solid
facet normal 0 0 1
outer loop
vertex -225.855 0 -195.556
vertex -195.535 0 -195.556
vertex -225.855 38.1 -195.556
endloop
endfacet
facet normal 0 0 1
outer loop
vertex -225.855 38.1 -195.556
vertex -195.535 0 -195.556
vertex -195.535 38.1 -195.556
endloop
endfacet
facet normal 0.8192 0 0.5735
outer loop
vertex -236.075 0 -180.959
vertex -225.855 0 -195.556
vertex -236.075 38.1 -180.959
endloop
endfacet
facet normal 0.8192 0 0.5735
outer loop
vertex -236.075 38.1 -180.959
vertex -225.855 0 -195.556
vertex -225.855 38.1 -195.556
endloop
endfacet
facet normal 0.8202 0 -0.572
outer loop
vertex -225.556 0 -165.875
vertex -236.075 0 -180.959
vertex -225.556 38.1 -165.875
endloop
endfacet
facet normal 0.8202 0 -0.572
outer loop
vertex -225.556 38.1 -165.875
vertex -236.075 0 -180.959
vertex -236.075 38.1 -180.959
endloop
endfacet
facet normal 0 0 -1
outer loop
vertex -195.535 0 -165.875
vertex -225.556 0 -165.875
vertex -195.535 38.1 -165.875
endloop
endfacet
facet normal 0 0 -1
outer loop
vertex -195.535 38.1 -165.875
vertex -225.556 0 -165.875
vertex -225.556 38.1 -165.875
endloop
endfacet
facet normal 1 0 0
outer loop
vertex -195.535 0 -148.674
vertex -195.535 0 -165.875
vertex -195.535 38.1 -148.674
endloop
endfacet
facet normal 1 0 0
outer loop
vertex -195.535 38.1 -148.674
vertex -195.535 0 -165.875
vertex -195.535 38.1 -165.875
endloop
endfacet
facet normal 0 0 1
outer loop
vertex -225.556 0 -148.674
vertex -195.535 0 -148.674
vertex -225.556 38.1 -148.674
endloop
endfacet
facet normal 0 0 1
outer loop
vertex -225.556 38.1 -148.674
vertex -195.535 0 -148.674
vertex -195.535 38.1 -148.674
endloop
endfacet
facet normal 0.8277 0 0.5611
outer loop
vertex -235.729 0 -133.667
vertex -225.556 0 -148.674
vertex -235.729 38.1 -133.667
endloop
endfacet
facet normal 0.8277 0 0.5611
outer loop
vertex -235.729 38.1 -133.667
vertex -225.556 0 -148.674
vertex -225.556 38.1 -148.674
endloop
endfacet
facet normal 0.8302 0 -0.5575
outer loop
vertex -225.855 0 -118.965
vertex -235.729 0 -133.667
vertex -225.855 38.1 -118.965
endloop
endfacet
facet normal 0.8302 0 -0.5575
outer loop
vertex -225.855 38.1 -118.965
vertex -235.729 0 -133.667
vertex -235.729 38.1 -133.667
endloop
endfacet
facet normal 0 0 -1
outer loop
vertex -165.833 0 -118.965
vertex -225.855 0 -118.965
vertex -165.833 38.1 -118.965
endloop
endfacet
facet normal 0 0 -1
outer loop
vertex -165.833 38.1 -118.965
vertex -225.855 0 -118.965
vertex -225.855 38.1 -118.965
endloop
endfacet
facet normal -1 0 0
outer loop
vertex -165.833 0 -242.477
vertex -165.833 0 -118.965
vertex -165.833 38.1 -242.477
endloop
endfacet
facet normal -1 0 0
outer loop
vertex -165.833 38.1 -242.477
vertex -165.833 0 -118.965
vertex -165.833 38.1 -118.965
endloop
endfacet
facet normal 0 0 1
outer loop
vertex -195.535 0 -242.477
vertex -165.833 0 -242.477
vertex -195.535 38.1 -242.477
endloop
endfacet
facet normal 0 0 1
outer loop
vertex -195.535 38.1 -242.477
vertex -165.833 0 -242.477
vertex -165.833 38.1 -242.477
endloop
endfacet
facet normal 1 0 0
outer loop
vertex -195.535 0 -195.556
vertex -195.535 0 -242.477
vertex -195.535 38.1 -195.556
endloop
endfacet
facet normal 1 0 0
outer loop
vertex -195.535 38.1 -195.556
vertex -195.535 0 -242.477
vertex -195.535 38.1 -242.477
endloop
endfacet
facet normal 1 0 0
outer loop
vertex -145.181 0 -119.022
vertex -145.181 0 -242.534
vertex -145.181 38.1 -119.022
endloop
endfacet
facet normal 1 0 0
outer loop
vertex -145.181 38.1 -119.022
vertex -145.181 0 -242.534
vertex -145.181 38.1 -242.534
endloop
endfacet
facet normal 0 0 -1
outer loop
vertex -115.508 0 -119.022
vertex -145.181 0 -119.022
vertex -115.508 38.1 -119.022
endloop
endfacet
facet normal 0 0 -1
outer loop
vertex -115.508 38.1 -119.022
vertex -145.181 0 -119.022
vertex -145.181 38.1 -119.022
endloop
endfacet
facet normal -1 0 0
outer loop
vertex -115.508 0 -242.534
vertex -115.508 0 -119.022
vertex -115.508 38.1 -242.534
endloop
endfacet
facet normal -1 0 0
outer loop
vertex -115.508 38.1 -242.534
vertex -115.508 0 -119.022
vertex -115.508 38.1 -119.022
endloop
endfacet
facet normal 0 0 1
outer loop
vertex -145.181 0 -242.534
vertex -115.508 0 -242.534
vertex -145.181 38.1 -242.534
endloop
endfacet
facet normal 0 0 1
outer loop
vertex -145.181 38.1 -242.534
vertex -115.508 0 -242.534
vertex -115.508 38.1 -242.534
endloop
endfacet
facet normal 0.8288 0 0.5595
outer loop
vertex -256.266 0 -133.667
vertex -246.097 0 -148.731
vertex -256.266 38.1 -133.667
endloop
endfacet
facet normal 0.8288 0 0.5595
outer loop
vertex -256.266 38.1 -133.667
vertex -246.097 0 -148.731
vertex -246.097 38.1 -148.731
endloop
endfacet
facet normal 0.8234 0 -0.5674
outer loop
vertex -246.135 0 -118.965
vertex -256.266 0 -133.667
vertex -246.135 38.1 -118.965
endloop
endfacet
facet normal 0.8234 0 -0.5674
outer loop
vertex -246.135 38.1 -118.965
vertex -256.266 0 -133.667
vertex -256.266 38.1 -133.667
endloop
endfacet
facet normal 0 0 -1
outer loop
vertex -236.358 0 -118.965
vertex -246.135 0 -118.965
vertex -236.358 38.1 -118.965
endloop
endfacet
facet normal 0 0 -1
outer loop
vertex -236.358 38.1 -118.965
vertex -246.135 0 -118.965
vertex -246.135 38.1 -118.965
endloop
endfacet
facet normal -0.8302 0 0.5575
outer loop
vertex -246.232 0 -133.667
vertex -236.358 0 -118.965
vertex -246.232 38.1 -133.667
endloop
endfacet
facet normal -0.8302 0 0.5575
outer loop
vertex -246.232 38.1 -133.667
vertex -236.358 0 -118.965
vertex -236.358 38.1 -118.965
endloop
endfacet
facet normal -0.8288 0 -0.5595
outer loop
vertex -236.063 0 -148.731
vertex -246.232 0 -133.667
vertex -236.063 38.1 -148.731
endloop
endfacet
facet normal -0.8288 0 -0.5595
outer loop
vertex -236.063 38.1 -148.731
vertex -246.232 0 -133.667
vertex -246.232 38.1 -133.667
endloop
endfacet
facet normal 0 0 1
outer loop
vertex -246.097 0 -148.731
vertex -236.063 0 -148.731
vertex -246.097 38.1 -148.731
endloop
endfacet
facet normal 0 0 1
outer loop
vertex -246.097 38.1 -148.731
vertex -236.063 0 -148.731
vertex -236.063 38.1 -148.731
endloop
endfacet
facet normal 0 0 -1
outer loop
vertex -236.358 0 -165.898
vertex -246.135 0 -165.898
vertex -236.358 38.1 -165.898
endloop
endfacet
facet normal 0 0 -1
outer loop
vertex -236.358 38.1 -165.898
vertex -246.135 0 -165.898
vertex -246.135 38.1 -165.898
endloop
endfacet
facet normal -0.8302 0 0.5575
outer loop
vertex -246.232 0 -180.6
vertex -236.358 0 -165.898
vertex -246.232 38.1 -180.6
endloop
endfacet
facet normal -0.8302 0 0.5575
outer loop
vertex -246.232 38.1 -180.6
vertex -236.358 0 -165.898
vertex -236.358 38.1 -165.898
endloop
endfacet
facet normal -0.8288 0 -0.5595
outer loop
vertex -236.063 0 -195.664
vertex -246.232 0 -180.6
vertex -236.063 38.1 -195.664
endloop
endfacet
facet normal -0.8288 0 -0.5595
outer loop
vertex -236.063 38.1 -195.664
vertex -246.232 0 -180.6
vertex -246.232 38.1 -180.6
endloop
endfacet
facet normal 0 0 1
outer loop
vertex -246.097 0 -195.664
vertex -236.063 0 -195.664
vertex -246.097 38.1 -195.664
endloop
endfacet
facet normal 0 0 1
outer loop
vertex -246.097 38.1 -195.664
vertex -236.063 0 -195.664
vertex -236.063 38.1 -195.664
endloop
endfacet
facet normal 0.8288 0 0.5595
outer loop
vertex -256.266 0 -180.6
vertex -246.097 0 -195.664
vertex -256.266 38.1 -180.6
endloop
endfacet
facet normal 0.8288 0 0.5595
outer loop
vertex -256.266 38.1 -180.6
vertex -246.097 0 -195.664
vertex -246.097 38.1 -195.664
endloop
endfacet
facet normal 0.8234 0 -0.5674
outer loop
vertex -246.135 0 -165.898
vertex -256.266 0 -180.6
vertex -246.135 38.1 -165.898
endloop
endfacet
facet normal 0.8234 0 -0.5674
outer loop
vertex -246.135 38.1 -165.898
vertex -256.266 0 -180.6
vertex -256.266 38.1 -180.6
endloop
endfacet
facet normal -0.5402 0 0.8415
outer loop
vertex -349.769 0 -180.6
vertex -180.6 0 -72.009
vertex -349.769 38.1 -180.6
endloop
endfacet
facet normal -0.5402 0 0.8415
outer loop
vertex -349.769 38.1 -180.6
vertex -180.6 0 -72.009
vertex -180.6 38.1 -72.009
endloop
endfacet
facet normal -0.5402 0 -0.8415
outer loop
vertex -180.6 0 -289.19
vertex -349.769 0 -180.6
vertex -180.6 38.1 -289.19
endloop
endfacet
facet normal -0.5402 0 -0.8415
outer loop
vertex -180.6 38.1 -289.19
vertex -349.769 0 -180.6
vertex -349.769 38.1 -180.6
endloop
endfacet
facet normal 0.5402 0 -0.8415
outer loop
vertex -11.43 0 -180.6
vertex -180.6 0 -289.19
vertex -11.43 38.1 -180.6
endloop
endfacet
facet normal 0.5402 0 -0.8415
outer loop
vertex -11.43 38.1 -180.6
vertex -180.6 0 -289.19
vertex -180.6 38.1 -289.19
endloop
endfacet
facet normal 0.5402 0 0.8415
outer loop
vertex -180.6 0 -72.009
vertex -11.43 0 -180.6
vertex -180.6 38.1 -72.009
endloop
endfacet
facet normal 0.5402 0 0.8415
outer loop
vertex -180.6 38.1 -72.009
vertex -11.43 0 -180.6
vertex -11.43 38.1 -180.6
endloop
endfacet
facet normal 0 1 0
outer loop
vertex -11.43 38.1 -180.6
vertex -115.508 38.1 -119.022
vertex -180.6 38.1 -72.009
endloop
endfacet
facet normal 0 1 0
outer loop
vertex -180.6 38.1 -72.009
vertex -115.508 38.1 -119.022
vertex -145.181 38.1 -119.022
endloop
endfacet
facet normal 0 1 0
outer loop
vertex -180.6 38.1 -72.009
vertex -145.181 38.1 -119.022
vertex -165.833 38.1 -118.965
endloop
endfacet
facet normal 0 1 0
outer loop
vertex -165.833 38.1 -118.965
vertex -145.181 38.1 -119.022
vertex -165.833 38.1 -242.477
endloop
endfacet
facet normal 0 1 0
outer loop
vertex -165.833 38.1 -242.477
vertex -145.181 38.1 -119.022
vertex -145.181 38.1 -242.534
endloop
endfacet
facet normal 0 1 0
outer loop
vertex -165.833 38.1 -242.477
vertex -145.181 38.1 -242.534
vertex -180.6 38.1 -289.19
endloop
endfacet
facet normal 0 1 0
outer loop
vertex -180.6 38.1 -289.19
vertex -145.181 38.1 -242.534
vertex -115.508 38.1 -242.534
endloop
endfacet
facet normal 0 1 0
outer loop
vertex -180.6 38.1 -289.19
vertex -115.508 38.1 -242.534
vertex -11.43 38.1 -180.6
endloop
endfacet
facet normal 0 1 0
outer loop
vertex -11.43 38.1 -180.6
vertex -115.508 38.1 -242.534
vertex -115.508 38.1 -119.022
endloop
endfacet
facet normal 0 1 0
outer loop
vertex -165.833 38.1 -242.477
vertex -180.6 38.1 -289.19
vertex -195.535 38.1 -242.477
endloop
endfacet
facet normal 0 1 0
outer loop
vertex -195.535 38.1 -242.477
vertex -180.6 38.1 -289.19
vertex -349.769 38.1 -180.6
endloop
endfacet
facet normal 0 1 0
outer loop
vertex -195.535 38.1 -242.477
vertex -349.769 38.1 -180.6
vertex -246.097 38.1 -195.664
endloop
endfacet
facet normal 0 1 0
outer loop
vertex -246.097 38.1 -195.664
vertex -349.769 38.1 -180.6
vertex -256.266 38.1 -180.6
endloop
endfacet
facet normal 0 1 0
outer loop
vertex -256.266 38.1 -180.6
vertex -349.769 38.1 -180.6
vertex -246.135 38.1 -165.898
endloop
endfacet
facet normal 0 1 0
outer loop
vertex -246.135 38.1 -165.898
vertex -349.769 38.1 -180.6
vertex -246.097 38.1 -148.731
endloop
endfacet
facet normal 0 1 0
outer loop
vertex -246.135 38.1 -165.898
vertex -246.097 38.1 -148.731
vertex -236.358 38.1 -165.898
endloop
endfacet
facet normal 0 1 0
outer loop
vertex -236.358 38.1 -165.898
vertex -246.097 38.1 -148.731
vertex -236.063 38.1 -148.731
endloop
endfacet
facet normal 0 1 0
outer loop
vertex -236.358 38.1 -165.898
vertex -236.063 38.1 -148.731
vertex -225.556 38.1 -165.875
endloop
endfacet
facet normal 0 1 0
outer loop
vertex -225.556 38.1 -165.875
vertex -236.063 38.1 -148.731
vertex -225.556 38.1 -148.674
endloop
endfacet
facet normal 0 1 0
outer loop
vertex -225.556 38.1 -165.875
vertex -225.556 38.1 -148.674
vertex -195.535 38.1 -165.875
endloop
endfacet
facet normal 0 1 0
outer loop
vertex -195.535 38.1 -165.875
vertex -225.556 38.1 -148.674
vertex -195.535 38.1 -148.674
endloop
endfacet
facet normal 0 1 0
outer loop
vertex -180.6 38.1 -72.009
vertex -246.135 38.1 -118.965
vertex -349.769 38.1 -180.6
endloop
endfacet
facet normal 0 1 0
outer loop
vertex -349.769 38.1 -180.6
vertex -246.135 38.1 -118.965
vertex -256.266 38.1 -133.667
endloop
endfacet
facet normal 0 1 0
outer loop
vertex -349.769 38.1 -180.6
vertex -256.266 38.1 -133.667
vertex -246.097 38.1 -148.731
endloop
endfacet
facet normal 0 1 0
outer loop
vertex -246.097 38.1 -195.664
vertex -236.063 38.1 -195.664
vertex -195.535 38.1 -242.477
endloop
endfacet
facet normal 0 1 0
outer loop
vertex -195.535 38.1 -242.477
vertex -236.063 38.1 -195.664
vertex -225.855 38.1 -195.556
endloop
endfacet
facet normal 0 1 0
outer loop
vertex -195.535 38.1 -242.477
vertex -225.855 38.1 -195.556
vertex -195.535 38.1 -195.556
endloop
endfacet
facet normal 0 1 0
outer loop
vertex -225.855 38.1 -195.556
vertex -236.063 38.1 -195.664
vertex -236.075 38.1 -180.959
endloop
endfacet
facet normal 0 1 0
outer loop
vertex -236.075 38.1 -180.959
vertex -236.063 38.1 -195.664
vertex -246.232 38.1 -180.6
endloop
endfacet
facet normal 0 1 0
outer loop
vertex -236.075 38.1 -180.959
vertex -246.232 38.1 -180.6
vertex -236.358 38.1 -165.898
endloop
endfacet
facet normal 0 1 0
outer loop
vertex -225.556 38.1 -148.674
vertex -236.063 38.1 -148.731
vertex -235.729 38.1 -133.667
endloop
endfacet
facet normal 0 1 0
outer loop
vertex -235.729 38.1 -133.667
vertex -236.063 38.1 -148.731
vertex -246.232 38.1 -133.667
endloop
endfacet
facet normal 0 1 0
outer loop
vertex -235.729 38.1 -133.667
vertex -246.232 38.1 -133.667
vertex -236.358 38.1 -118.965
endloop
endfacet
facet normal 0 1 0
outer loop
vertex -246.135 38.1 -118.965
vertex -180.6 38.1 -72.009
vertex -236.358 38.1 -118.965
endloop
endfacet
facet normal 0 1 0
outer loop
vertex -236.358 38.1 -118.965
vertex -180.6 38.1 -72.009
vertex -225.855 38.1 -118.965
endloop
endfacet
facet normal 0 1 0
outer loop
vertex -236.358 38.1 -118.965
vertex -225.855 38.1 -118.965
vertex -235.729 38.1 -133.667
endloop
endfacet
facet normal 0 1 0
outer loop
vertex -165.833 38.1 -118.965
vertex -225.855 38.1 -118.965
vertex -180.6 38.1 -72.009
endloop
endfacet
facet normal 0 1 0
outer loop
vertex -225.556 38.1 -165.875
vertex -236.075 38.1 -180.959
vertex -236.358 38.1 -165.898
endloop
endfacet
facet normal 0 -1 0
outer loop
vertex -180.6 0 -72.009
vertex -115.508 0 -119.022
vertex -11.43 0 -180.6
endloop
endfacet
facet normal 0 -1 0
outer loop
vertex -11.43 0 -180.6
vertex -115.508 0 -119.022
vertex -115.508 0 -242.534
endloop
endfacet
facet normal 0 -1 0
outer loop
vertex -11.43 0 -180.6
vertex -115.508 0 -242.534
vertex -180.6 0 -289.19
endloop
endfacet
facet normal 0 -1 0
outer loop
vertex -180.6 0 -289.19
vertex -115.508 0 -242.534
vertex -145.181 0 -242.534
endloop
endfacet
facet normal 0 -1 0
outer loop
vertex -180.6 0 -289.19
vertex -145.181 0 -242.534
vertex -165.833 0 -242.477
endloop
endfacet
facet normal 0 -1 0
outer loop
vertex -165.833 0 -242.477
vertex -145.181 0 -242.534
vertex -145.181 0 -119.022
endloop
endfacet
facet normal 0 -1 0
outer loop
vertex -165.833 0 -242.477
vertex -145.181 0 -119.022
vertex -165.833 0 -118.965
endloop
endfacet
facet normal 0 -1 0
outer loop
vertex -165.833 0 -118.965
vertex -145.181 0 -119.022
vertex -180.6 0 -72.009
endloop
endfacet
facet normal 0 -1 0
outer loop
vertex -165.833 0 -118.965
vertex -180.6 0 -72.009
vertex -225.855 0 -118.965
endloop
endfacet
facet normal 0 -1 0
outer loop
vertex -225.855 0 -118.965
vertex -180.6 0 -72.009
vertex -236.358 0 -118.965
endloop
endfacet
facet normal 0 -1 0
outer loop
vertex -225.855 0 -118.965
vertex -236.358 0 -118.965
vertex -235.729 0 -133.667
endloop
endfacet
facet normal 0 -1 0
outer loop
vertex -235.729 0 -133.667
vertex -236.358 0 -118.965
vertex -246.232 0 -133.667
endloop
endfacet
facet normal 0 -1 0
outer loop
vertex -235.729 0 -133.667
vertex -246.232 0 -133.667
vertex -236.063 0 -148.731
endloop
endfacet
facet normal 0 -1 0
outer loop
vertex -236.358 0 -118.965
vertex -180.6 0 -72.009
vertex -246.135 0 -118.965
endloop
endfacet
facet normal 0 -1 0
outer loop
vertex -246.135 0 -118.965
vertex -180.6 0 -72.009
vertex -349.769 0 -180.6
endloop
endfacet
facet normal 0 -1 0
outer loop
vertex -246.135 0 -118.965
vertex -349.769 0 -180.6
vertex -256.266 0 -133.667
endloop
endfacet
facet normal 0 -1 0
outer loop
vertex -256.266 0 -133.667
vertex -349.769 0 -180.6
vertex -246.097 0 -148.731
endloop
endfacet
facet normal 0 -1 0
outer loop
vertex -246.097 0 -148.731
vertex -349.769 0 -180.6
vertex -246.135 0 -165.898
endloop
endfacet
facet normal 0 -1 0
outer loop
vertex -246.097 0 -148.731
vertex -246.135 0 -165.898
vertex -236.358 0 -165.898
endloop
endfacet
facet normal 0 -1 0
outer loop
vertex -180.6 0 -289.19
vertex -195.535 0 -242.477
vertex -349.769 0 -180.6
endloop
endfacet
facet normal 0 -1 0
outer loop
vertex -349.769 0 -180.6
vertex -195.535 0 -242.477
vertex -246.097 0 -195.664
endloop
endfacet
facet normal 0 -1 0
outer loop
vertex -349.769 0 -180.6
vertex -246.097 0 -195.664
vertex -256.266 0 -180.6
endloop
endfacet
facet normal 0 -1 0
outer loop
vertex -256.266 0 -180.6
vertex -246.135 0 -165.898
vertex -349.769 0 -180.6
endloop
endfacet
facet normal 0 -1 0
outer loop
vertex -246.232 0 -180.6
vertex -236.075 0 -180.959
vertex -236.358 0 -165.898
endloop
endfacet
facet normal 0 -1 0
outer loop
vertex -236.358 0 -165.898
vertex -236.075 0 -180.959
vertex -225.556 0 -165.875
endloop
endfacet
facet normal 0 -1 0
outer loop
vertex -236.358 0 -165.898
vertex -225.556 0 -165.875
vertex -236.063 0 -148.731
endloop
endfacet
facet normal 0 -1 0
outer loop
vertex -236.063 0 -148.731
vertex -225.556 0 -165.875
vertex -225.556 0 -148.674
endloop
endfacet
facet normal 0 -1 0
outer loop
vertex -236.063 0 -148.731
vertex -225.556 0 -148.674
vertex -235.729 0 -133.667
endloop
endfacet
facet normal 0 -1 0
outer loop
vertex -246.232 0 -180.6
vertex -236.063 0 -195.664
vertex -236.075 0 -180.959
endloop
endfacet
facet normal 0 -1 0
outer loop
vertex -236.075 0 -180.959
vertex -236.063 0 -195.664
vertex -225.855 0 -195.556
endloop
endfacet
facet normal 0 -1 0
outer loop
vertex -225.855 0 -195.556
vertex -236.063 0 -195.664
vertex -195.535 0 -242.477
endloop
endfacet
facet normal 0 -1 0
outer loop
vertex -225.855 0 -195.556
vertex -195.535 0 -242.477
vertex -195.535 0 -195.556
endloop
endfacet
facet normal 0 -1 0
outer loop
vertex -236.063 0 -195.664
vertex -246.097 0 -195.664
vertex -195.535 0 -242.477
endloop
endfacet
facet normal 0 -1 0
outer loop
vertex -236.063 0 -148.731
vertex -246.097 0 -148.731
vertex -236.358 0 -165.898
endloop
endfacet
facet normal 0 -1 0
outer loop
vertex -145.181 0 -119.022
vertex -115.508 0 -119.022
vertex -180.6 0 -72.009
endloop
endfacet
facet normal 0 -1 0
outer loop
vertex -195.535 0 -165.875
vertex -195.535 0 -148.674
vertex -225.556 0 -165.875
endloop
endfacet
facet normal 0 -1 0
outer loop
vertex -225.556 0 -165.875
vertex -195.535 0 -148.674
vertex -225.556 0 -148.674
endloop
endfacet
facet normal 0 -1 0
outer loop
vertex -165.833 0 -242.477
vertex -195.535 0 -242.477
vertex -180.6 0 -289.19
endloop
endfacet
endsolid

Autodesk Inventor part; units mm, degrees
ref_plane "YZ Plane" through (0, 0, 0) normal (1, 0, 0) x (0, 1, 0)
ref_plane "XZ Plane" through (0, 0, 0) normal (0, 1, 0) x (-1, 0, 0)
ref_plane "XY Plane" through (0, 0, 0) normal (0, 0, 1) x (1, 0, 0)
sketch "Sketch1" plane through (0, 0, 0) normal (0, 1, 0) x (-1, 0, 0)
  line L0 (0, 0) -> (361.1993, 0) construction
  line L1 (361.1993, 0) -> (361.1993, -361.1993) construction
  line L2 (361.1993, -361.1993) -> (0, -361.1993) construction
  line L3 (0, -361.1993) -> (0, 0) construction
sketch "Sketch2" plane through (0, 0, 0) normal (0, 1, 0) x (-1, 0, 0)
  line L0 (0, -180.5996) -> (11.43, -180.5996)
  line L1 (11.43, -180.5996) -> (180.5997, -72.009)
  line L2 (180.5997, -289.1903) -> (11.43, -180.5996)
  line L3 (361.1993, -180.5996) -> (349.7693, -180.5996)
  line L4 (349.7693, -180.5996) -> (180.5997, -72.009)
  line L5 (180.5997, -289.1903) -> (349.7693, -180.5996)
  line L6 (115.508, -119.0216) -> (145.1807, -119.0216)
  line L7 (145.1807, -119.0216) -> (145.1807, -242.5337)
  line L8 (145.1807, -242.5337) -> (115.508, -242.5337)
  line L9 (115.508, -242.5337) -> (115.508, -119.0216)
  line L10 (165.8332, -118.9647) -> (165.8332, -242.4769)
  line L11 (165.8332, -242.4769) -> (195.5355, -242.4769)
  line L12 (195.5355, -242.4769) -> (195.5355, -195.5556)
  line L13 (195.5355, -195.5556) -> (225.8549, -195.5556)
  line L14 (225.8549, -195.5556) -> (236.0754, -180.9592)
  line L15 (236.0754, -180.9592) -> (225.5562, -165.8753)
  line L16 (225.5562, -165.8753) -> (195.5355, -165.8753)
  line L17 (195.5355, -165.8753) -> (195.5355, -148.6741)
  line L18 (195.5355, -148.6741) -> (225.5562, -148.6741)
  line L19 (225.5562, -148.6741) -> (235.7293, -133.6668)
  line L20 (235.7293, -133.6668) -> (225.8549, -118.9647)
  line L21 (225.8549, -118.9647) -> (165.8332, -118.9647)
  line L22 (236.3576, -118.9647) -> (246.1353, -118.9647)
  line L23 (246.1353, -118.9647) -> (256.2661, -133.6668)
  line L24 (236.0628, -148.731) -> (246.0969, -148.731)
  line L25 (246.0969, -148.731) -> (256.2661, -133.6668)
  line L26 (236.3576, -118.9647) -> (246.2319, -133.6668)
  line L27 (236.0628, -148.731) -> (246.2319, -133.6668)
  line L28 (236.3576, -165.8976) -> (246.1353, -165.8976)
  line L29 (246.1353, -165.8976) -> (256.2661, -180.5996)
  line L30 (236.0628, -195.6639) -> (246.0969, -195.6639)
  line L31 (246.0969, -195.6639) -> (256.2661, -180.5996)
  line L32 (236.3576, -165.8976) -> (246.2319, -180.5996)
  line L33 (236.0628, -195.6639) -> (246.2319, -180.5996)
  point P0 (0, 0)
  dimension "d1" = 11.43
  dimension "d3" = 11.43
  dimension "d4" = 125
  dimension "d5" = 90
extrude "Extrusion1" add sketch "Sketch2" along normal blind 38.1
properties part number "TeamIF"
